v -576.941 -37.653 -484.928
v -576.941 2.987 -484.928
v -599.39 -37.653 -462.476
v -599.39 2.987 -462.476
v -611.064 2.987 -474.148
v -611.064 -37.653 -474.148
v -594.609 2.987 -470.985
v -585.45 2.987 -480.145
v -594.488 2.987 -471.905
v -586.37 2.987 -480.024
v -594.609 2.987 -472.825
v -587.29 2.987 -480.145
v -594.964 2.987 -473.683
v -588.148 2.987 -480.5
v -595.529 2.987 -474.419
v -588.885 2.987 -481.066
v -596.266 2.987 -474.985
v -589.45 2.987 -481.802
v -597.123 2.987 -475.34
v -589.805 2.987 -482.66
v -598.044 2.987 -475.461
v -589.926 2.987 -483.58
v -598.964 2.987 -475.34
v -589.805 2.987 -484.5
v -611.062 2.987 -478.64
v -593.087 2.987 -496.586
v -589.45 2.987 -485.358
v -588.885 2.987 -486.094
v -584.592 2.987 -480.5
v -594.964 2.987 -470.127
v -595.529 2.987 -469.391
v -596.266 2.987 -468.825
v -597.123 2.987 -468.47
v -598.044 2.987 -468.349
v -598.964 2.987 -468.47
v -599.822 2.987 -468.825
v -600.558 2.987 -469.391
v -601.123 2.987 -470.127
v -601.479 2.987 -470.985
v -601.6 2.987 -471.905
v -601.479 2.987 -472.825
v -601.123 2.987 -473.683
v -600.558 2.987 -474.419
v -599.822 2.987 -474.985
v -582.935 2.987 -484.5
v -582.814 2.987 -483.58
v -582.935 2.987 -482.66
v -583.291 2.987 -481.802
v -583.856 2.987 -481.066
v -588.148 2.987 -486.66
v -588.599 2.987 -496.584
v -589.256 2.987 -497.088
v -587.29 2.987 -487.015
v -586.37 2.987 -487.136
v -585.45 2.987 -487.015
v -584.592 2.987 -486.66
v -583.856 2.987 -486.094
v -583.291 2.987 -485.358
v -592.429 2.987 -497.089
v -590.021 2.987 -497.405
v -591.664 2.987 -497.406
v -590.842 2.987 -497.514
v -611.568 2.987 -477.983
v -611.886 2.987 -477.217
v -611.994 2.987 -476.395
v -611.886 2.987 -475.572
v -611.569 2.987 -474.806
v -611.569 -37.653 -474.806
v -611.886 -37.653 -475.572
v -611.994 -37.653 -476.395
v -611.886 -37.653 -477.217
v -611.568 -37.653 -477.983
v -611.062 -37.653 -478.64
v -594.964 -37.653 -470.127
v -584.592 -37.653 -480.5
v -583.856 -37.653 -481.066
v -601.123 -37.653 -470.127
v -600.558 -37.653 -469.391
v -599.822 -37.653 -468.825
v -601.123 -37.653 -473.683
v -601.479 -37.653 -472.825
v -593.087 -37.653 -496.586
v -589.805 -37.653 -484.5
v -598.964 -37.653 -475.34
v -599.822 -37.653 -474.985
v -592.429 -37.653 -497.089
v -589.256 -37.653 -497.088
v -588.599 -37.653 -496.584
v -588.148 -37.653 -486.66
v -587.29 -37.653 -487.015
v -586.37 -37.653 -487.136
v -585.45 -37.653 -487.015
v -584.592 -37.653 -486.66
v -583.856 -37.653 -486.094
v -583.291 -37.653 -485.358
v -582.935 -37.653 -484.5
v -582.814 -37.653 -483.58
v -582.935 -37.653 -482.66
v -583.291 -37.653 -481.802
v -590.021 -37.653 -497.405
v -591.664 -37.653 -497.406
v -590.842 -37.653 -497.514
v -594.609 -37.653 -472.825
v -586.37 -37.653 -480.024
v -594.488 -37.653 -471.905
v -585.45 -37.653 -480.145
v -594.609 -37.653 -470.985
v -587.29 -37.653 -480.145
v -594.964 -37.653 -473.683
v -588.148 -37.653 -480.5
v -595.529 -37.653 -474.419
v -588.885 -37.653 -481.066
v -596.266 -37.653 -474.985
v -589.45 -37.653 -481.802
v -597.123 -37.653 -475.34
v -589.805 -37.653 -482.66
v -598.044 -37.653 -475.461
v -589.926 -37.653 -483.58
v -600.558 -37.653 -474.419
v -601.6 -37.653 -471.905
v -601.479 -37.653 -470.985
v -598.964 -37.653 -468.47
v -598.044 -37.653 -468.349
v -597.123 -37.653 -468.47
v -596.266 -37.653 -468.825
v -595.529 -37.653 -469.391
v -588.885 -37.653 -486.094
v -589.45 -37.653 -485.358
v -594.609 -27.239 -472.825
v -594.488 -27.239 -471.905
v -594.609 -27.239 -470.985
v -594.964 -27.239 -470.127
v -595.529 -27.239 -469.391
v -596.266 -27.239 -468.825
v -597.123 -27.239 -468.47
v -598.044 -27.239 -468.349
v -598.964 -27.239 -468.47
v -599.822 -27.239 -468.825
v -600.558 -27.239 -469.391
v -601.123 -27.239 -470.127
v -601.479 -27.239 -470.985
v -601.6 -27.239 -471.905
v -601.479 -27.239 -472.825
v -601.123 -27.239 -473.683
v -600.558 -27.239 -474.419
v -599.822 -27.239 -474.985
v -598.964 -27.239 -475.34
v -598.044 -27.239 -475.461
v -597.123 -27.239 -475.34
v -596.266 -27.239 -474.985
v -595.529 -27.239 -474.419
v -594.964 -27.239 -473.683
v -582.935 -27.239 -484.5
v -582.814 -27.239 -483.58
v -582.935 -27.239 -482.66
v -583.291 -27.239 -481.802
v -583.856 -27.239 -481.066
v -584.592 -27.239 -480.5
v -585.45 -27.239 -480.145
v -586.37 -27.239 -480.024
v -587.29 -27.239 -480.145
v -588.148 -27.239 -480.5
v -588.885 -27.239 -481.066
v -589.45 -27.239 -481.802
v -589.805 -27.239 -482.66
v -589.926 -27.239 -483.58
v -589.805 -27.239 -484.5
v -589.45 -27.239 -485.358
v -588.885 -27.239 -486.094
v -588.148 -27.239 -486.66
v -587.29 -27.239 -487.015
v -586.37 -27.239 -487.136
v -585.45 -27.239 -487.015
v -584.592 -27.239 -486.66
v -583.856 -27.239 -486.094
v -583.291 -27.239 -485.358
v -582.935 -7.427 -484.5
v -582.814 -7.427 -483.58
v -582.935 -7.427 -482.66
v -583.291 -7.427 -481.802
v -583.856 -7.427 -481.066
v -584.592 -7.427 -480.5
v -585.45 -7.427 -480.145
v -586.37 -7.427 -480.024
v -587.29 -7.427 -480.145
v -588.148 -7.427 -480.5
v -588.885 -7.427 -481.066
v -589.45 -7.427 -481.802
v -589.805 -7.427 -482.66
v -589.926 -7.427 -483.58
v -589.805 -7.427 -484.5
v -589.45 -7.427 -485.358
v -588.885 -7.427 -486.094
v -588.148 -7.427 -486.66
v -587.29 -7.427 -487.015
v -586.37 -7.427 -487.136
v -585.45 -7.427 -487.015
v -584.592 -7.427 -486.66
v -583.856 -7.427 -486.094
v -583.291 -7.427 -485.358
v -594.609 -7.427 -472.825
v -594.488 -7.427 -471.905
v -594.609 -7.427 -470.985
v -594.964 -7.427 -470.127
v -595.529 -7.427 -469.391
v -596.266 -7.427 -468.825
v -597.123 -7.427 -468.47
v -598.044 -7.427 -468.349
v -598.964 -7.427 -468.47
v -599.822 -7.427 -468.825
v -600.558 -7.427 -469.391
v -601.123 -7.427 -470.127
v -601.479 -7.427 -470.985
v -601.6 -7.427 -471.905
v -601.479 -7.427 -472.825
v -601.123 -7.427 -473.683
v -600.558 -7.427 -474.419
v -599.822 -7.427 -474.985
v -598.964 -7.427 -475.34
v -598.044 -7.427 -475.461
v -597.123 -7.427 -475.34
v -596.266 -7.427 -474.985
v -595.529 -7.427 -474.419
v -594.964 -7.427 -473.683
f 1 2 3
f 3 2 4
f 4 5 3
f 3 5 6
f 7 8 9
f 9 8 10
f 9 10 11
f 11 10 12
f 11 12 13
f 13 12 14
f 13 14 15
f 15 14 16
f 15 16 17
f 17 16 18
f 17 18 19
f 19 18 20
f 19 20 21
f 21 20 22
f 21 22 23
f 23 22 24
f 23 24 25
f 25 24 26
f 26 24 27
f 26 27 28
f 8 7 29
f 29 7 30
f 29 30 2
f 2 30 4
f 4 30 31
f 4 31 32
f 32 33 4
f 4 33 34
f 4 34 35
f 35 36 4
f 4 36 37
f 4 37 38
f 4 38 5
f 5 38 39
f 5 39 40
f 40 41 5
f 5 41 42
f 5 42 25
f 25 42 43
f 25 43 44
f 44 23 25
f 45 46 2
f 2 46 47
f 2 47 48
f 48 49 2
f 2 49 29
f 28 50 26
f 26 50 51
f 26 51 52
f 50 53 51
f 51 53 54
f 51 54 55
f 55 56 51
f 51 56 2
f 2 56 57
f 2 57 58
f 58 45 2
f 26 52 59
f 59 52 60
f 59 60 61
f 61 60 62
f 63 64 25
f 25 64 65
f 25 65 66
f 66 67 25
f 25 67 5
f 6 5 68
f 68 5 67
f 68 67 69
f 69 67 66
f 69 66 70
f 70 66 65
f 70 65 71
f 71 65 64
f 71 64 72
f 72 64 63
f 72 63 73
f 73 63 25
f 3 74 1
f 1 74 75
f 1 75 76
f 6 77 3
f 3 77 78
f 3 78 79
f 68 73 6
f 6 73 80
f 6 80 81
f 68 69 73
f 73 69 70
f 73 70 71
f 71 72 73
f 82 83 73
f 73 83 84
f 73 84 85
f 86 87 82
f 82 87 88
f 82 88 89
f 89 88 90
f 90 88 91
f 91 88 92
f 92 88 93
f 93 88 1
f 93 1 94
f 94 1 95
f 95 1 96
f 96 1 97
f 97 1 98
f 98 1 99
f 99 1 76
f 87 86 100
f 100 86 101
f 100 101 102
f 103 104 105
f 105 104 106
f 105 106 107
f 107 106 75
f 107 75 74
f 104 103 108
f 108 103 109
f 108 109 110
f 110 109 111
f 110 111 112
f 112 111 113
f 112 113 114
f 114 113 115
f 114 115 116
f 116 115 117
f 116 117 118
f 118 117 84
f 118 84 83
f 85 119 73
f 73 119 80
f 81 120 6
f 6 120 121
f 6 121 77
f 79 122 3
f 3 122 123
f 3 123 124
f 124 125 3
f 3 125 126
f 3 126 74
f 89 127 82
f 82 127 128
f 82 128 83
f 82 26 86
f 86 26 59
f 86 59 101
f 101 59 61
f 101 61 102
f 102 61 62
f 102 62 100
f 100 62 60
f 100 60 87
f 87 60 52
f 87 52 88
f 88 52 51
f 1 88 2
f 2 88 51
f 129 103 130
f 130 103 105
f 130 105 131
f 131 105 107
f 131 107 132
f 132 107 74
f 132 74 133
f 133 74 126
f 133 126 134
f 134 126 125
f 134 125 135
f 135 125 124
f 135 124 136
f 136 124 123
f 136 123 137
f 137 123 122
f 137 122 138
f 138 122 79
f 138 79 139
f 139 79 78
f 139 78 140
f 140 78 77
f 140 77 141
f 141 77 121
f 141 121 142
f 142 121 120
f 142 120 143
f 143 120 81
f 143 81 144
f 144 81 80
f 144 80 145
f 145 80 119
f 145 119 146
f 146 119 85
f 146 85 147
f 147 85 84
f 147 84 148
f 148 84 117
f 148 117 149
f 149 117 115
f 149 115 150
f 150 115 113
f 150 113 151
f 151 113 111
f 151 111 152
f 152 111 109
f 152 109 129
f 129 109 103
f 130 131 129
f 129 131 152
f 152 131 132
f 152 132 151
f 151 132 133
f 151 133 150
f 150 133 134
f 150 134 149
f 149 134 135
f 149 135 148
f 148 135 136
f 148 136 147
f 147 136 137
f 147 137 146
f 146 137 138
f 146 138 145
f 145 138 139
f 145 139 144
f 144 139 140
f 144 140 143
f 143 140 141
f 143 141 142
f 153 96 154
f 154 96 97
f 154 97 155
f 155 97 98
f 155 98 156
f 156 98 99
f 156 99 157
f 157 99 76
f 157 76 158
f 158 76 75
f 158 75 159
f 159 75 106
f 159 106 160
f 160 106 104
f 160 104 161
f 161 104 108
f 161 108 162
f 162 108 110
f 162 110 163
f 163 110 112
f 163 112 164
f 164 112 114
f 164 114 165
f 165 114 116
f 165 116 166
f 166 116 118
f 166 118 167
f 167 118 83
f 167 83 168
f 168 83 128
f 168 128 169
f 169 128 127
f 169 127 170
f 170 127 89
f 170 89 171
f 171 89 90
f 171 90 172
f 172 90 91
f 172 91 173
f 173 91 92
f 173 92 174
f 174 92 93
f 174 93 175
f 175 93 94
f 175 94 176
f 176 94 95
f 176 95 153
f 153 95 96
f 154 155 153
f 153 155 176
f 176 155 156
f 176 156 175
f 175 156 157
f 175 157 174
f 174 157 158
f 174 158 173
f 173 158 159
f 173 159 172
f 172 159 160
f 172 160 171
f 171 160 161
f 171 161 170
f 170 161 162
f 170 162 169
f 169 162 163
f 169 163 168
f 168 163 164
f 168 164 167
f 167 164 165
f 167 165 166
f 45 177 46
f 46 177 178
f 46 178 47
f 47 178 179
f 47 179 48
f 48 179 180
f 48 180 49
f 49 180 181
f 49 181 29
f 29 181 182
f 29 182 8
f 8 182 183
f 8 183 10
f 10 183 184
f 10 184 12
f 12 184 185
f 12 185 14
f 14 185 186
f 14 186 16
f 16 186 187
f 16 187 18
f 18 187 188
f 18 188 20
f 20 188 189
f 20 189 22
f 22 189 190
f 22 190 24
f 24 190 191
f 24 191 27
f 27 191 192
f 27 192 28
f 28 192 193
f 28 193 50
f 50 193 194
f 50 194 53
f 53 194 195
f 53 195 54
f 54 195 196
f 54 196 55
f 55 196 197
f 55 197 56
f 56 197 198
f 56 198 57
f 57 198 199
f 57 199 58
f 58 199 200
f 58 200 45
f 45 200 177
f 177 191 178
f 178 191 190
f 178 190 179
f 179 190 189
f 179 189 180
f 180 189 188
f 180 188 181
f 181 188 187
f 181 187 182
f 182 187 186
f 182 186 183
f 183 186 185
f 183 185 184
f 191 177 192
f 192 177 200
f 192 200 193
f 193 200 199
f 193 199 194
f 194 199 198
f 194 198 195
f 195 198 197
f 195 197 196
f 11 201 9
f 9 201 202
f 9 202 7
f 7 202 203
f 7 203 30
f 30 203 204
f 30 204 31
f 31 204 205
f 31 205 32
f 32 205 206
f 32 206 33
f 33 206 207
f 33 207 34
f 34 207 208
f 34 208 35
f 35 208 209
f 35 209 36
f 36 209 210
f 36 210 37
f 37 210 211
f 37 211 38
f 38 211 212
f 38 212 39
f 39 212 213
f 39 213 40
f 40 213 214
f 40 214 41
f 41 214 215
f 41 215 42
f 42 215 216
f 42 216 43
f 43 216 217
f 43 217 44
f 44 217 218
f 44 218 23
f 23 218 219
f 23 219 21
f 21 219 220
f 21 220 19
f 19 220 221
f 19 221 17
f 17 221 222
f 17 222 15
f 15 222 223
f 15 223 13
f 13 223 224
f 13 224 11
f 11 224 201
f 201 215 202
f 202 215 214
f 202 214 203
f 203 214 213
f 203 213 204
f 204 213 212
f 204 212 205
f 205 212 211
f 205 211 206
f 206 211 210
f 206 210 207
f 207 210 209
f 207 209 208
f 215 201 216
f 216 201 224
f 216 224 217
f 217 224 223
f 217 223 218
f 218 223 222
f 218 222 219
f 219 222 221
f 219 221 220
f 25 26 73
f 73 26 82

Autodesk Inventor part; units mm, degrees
ref_plane "YZ Plane" through (0, 0, 0) normal (1, 0, 0) x (0, 1, 0)
ref_plane "XZ Plane" through (0, 0, 0) normal (0, 1, 0) x (-1, 0, 0)
ref_plane "XY Plane" through (0, 0, 0) normal (0, 0, 1) x (1, 0, 0)
ref_plane "Work Plane1" through (49.1494, -37.6525, 49.2967) normal (0, 1, 0) x (-1, 0, 0)
sketch "Sketch2" plane through (49.1494, -37.6525, 49.2967) normal (0, 1, 0) x (-1, 0, 0)
  line L0 (662.4608, -525.6919) -> (646.2945, -509.5274) projected
  line L1 (143.1429, -6.4305) -> (69.9168, -79.6645) projected
  line L2 (623.8451, -531.9793) -> (639.991, -548.1234) projected
  line L3 (104.5272, -12.7179) -> (126.9766, 9.734) projected
  line L4 (646.2945, -509.5274) -> (662.4608, -525.6919)
  line L5 (662.4608, -525.6919) -> (639.991, -548.1234)
  line L6 (639.991, -548.1234) -> (623.8451, -531.9793)
  line L7 (623.8451, -531.9793) -> (646.2945, -509.5274)
  point P0 (49.1494, -49.2967)
  point P1 (69.9168, -79.6645)
extrude "Extrusion2" add sketch "Sketch2" along normal blind 40.64
sketch "Sketch3" plane through (49.1494, 2.9875, 49.2967) normal (0, 1, 0) x (1, 0, 0)
  circle A0 centre (-647.1931, 521.2017) radius 2.4765 projected
  circle A1 centre (-635.5195, 532.8766) radius 2.4765 projected
  point P0 (-49.1494, 49.2967)
hole "Hole1" at (-586.3701, 2.9875, -483.58) at (-598.0438, 2.9875, -471.905) direction (0, -1, 0) diameter 7.112 depth 10.414
sketch "Sketch4" plane through (49.1494, -37.6525, 49.2967) normal (0, -1, 0) x (1, 0, 0)
  circle A0 centre (-647.1931, -521.2017) radius 3.556 projected
  circle A1 centre (-635.5195, -532.8766) radius 3.556 projected
  point P0 (-49.1494, -49.2967)
extrude "Extrusion3" cut sketch "Sketch4" against normal blind 10.414
fillet "Fillet1" radius 3.175 2 edges at (-590.8417, -17.3325, -498.8268) (-613.3114, -17.3325, -476.3953)
sketch "Sketch5" plane through (-597.1451, -37.6525, -460.2307) normal (-0.7071, 0, 0.7071) x (0.7071, 0, 0.7071)
  line L0 (0, 40.64) -> (-19.6604, 40.64) projected
  line L1 (0, 0) -> (-3.175, 0)
  line L2 (-3.175, 0) -> (-3.175, 40.64)
  line L3 (-3.175, 40.64) -> (0, 40.64)
  line L4 (0, 40.64) -> (0, 0)
  point P0 (747.6829, 37.6525)
  dimension "d14" = 3.175
extrude "Extrusion4" cut sketch "Sketch5" against normal blind 46.0375
properties part number "Standoff"
